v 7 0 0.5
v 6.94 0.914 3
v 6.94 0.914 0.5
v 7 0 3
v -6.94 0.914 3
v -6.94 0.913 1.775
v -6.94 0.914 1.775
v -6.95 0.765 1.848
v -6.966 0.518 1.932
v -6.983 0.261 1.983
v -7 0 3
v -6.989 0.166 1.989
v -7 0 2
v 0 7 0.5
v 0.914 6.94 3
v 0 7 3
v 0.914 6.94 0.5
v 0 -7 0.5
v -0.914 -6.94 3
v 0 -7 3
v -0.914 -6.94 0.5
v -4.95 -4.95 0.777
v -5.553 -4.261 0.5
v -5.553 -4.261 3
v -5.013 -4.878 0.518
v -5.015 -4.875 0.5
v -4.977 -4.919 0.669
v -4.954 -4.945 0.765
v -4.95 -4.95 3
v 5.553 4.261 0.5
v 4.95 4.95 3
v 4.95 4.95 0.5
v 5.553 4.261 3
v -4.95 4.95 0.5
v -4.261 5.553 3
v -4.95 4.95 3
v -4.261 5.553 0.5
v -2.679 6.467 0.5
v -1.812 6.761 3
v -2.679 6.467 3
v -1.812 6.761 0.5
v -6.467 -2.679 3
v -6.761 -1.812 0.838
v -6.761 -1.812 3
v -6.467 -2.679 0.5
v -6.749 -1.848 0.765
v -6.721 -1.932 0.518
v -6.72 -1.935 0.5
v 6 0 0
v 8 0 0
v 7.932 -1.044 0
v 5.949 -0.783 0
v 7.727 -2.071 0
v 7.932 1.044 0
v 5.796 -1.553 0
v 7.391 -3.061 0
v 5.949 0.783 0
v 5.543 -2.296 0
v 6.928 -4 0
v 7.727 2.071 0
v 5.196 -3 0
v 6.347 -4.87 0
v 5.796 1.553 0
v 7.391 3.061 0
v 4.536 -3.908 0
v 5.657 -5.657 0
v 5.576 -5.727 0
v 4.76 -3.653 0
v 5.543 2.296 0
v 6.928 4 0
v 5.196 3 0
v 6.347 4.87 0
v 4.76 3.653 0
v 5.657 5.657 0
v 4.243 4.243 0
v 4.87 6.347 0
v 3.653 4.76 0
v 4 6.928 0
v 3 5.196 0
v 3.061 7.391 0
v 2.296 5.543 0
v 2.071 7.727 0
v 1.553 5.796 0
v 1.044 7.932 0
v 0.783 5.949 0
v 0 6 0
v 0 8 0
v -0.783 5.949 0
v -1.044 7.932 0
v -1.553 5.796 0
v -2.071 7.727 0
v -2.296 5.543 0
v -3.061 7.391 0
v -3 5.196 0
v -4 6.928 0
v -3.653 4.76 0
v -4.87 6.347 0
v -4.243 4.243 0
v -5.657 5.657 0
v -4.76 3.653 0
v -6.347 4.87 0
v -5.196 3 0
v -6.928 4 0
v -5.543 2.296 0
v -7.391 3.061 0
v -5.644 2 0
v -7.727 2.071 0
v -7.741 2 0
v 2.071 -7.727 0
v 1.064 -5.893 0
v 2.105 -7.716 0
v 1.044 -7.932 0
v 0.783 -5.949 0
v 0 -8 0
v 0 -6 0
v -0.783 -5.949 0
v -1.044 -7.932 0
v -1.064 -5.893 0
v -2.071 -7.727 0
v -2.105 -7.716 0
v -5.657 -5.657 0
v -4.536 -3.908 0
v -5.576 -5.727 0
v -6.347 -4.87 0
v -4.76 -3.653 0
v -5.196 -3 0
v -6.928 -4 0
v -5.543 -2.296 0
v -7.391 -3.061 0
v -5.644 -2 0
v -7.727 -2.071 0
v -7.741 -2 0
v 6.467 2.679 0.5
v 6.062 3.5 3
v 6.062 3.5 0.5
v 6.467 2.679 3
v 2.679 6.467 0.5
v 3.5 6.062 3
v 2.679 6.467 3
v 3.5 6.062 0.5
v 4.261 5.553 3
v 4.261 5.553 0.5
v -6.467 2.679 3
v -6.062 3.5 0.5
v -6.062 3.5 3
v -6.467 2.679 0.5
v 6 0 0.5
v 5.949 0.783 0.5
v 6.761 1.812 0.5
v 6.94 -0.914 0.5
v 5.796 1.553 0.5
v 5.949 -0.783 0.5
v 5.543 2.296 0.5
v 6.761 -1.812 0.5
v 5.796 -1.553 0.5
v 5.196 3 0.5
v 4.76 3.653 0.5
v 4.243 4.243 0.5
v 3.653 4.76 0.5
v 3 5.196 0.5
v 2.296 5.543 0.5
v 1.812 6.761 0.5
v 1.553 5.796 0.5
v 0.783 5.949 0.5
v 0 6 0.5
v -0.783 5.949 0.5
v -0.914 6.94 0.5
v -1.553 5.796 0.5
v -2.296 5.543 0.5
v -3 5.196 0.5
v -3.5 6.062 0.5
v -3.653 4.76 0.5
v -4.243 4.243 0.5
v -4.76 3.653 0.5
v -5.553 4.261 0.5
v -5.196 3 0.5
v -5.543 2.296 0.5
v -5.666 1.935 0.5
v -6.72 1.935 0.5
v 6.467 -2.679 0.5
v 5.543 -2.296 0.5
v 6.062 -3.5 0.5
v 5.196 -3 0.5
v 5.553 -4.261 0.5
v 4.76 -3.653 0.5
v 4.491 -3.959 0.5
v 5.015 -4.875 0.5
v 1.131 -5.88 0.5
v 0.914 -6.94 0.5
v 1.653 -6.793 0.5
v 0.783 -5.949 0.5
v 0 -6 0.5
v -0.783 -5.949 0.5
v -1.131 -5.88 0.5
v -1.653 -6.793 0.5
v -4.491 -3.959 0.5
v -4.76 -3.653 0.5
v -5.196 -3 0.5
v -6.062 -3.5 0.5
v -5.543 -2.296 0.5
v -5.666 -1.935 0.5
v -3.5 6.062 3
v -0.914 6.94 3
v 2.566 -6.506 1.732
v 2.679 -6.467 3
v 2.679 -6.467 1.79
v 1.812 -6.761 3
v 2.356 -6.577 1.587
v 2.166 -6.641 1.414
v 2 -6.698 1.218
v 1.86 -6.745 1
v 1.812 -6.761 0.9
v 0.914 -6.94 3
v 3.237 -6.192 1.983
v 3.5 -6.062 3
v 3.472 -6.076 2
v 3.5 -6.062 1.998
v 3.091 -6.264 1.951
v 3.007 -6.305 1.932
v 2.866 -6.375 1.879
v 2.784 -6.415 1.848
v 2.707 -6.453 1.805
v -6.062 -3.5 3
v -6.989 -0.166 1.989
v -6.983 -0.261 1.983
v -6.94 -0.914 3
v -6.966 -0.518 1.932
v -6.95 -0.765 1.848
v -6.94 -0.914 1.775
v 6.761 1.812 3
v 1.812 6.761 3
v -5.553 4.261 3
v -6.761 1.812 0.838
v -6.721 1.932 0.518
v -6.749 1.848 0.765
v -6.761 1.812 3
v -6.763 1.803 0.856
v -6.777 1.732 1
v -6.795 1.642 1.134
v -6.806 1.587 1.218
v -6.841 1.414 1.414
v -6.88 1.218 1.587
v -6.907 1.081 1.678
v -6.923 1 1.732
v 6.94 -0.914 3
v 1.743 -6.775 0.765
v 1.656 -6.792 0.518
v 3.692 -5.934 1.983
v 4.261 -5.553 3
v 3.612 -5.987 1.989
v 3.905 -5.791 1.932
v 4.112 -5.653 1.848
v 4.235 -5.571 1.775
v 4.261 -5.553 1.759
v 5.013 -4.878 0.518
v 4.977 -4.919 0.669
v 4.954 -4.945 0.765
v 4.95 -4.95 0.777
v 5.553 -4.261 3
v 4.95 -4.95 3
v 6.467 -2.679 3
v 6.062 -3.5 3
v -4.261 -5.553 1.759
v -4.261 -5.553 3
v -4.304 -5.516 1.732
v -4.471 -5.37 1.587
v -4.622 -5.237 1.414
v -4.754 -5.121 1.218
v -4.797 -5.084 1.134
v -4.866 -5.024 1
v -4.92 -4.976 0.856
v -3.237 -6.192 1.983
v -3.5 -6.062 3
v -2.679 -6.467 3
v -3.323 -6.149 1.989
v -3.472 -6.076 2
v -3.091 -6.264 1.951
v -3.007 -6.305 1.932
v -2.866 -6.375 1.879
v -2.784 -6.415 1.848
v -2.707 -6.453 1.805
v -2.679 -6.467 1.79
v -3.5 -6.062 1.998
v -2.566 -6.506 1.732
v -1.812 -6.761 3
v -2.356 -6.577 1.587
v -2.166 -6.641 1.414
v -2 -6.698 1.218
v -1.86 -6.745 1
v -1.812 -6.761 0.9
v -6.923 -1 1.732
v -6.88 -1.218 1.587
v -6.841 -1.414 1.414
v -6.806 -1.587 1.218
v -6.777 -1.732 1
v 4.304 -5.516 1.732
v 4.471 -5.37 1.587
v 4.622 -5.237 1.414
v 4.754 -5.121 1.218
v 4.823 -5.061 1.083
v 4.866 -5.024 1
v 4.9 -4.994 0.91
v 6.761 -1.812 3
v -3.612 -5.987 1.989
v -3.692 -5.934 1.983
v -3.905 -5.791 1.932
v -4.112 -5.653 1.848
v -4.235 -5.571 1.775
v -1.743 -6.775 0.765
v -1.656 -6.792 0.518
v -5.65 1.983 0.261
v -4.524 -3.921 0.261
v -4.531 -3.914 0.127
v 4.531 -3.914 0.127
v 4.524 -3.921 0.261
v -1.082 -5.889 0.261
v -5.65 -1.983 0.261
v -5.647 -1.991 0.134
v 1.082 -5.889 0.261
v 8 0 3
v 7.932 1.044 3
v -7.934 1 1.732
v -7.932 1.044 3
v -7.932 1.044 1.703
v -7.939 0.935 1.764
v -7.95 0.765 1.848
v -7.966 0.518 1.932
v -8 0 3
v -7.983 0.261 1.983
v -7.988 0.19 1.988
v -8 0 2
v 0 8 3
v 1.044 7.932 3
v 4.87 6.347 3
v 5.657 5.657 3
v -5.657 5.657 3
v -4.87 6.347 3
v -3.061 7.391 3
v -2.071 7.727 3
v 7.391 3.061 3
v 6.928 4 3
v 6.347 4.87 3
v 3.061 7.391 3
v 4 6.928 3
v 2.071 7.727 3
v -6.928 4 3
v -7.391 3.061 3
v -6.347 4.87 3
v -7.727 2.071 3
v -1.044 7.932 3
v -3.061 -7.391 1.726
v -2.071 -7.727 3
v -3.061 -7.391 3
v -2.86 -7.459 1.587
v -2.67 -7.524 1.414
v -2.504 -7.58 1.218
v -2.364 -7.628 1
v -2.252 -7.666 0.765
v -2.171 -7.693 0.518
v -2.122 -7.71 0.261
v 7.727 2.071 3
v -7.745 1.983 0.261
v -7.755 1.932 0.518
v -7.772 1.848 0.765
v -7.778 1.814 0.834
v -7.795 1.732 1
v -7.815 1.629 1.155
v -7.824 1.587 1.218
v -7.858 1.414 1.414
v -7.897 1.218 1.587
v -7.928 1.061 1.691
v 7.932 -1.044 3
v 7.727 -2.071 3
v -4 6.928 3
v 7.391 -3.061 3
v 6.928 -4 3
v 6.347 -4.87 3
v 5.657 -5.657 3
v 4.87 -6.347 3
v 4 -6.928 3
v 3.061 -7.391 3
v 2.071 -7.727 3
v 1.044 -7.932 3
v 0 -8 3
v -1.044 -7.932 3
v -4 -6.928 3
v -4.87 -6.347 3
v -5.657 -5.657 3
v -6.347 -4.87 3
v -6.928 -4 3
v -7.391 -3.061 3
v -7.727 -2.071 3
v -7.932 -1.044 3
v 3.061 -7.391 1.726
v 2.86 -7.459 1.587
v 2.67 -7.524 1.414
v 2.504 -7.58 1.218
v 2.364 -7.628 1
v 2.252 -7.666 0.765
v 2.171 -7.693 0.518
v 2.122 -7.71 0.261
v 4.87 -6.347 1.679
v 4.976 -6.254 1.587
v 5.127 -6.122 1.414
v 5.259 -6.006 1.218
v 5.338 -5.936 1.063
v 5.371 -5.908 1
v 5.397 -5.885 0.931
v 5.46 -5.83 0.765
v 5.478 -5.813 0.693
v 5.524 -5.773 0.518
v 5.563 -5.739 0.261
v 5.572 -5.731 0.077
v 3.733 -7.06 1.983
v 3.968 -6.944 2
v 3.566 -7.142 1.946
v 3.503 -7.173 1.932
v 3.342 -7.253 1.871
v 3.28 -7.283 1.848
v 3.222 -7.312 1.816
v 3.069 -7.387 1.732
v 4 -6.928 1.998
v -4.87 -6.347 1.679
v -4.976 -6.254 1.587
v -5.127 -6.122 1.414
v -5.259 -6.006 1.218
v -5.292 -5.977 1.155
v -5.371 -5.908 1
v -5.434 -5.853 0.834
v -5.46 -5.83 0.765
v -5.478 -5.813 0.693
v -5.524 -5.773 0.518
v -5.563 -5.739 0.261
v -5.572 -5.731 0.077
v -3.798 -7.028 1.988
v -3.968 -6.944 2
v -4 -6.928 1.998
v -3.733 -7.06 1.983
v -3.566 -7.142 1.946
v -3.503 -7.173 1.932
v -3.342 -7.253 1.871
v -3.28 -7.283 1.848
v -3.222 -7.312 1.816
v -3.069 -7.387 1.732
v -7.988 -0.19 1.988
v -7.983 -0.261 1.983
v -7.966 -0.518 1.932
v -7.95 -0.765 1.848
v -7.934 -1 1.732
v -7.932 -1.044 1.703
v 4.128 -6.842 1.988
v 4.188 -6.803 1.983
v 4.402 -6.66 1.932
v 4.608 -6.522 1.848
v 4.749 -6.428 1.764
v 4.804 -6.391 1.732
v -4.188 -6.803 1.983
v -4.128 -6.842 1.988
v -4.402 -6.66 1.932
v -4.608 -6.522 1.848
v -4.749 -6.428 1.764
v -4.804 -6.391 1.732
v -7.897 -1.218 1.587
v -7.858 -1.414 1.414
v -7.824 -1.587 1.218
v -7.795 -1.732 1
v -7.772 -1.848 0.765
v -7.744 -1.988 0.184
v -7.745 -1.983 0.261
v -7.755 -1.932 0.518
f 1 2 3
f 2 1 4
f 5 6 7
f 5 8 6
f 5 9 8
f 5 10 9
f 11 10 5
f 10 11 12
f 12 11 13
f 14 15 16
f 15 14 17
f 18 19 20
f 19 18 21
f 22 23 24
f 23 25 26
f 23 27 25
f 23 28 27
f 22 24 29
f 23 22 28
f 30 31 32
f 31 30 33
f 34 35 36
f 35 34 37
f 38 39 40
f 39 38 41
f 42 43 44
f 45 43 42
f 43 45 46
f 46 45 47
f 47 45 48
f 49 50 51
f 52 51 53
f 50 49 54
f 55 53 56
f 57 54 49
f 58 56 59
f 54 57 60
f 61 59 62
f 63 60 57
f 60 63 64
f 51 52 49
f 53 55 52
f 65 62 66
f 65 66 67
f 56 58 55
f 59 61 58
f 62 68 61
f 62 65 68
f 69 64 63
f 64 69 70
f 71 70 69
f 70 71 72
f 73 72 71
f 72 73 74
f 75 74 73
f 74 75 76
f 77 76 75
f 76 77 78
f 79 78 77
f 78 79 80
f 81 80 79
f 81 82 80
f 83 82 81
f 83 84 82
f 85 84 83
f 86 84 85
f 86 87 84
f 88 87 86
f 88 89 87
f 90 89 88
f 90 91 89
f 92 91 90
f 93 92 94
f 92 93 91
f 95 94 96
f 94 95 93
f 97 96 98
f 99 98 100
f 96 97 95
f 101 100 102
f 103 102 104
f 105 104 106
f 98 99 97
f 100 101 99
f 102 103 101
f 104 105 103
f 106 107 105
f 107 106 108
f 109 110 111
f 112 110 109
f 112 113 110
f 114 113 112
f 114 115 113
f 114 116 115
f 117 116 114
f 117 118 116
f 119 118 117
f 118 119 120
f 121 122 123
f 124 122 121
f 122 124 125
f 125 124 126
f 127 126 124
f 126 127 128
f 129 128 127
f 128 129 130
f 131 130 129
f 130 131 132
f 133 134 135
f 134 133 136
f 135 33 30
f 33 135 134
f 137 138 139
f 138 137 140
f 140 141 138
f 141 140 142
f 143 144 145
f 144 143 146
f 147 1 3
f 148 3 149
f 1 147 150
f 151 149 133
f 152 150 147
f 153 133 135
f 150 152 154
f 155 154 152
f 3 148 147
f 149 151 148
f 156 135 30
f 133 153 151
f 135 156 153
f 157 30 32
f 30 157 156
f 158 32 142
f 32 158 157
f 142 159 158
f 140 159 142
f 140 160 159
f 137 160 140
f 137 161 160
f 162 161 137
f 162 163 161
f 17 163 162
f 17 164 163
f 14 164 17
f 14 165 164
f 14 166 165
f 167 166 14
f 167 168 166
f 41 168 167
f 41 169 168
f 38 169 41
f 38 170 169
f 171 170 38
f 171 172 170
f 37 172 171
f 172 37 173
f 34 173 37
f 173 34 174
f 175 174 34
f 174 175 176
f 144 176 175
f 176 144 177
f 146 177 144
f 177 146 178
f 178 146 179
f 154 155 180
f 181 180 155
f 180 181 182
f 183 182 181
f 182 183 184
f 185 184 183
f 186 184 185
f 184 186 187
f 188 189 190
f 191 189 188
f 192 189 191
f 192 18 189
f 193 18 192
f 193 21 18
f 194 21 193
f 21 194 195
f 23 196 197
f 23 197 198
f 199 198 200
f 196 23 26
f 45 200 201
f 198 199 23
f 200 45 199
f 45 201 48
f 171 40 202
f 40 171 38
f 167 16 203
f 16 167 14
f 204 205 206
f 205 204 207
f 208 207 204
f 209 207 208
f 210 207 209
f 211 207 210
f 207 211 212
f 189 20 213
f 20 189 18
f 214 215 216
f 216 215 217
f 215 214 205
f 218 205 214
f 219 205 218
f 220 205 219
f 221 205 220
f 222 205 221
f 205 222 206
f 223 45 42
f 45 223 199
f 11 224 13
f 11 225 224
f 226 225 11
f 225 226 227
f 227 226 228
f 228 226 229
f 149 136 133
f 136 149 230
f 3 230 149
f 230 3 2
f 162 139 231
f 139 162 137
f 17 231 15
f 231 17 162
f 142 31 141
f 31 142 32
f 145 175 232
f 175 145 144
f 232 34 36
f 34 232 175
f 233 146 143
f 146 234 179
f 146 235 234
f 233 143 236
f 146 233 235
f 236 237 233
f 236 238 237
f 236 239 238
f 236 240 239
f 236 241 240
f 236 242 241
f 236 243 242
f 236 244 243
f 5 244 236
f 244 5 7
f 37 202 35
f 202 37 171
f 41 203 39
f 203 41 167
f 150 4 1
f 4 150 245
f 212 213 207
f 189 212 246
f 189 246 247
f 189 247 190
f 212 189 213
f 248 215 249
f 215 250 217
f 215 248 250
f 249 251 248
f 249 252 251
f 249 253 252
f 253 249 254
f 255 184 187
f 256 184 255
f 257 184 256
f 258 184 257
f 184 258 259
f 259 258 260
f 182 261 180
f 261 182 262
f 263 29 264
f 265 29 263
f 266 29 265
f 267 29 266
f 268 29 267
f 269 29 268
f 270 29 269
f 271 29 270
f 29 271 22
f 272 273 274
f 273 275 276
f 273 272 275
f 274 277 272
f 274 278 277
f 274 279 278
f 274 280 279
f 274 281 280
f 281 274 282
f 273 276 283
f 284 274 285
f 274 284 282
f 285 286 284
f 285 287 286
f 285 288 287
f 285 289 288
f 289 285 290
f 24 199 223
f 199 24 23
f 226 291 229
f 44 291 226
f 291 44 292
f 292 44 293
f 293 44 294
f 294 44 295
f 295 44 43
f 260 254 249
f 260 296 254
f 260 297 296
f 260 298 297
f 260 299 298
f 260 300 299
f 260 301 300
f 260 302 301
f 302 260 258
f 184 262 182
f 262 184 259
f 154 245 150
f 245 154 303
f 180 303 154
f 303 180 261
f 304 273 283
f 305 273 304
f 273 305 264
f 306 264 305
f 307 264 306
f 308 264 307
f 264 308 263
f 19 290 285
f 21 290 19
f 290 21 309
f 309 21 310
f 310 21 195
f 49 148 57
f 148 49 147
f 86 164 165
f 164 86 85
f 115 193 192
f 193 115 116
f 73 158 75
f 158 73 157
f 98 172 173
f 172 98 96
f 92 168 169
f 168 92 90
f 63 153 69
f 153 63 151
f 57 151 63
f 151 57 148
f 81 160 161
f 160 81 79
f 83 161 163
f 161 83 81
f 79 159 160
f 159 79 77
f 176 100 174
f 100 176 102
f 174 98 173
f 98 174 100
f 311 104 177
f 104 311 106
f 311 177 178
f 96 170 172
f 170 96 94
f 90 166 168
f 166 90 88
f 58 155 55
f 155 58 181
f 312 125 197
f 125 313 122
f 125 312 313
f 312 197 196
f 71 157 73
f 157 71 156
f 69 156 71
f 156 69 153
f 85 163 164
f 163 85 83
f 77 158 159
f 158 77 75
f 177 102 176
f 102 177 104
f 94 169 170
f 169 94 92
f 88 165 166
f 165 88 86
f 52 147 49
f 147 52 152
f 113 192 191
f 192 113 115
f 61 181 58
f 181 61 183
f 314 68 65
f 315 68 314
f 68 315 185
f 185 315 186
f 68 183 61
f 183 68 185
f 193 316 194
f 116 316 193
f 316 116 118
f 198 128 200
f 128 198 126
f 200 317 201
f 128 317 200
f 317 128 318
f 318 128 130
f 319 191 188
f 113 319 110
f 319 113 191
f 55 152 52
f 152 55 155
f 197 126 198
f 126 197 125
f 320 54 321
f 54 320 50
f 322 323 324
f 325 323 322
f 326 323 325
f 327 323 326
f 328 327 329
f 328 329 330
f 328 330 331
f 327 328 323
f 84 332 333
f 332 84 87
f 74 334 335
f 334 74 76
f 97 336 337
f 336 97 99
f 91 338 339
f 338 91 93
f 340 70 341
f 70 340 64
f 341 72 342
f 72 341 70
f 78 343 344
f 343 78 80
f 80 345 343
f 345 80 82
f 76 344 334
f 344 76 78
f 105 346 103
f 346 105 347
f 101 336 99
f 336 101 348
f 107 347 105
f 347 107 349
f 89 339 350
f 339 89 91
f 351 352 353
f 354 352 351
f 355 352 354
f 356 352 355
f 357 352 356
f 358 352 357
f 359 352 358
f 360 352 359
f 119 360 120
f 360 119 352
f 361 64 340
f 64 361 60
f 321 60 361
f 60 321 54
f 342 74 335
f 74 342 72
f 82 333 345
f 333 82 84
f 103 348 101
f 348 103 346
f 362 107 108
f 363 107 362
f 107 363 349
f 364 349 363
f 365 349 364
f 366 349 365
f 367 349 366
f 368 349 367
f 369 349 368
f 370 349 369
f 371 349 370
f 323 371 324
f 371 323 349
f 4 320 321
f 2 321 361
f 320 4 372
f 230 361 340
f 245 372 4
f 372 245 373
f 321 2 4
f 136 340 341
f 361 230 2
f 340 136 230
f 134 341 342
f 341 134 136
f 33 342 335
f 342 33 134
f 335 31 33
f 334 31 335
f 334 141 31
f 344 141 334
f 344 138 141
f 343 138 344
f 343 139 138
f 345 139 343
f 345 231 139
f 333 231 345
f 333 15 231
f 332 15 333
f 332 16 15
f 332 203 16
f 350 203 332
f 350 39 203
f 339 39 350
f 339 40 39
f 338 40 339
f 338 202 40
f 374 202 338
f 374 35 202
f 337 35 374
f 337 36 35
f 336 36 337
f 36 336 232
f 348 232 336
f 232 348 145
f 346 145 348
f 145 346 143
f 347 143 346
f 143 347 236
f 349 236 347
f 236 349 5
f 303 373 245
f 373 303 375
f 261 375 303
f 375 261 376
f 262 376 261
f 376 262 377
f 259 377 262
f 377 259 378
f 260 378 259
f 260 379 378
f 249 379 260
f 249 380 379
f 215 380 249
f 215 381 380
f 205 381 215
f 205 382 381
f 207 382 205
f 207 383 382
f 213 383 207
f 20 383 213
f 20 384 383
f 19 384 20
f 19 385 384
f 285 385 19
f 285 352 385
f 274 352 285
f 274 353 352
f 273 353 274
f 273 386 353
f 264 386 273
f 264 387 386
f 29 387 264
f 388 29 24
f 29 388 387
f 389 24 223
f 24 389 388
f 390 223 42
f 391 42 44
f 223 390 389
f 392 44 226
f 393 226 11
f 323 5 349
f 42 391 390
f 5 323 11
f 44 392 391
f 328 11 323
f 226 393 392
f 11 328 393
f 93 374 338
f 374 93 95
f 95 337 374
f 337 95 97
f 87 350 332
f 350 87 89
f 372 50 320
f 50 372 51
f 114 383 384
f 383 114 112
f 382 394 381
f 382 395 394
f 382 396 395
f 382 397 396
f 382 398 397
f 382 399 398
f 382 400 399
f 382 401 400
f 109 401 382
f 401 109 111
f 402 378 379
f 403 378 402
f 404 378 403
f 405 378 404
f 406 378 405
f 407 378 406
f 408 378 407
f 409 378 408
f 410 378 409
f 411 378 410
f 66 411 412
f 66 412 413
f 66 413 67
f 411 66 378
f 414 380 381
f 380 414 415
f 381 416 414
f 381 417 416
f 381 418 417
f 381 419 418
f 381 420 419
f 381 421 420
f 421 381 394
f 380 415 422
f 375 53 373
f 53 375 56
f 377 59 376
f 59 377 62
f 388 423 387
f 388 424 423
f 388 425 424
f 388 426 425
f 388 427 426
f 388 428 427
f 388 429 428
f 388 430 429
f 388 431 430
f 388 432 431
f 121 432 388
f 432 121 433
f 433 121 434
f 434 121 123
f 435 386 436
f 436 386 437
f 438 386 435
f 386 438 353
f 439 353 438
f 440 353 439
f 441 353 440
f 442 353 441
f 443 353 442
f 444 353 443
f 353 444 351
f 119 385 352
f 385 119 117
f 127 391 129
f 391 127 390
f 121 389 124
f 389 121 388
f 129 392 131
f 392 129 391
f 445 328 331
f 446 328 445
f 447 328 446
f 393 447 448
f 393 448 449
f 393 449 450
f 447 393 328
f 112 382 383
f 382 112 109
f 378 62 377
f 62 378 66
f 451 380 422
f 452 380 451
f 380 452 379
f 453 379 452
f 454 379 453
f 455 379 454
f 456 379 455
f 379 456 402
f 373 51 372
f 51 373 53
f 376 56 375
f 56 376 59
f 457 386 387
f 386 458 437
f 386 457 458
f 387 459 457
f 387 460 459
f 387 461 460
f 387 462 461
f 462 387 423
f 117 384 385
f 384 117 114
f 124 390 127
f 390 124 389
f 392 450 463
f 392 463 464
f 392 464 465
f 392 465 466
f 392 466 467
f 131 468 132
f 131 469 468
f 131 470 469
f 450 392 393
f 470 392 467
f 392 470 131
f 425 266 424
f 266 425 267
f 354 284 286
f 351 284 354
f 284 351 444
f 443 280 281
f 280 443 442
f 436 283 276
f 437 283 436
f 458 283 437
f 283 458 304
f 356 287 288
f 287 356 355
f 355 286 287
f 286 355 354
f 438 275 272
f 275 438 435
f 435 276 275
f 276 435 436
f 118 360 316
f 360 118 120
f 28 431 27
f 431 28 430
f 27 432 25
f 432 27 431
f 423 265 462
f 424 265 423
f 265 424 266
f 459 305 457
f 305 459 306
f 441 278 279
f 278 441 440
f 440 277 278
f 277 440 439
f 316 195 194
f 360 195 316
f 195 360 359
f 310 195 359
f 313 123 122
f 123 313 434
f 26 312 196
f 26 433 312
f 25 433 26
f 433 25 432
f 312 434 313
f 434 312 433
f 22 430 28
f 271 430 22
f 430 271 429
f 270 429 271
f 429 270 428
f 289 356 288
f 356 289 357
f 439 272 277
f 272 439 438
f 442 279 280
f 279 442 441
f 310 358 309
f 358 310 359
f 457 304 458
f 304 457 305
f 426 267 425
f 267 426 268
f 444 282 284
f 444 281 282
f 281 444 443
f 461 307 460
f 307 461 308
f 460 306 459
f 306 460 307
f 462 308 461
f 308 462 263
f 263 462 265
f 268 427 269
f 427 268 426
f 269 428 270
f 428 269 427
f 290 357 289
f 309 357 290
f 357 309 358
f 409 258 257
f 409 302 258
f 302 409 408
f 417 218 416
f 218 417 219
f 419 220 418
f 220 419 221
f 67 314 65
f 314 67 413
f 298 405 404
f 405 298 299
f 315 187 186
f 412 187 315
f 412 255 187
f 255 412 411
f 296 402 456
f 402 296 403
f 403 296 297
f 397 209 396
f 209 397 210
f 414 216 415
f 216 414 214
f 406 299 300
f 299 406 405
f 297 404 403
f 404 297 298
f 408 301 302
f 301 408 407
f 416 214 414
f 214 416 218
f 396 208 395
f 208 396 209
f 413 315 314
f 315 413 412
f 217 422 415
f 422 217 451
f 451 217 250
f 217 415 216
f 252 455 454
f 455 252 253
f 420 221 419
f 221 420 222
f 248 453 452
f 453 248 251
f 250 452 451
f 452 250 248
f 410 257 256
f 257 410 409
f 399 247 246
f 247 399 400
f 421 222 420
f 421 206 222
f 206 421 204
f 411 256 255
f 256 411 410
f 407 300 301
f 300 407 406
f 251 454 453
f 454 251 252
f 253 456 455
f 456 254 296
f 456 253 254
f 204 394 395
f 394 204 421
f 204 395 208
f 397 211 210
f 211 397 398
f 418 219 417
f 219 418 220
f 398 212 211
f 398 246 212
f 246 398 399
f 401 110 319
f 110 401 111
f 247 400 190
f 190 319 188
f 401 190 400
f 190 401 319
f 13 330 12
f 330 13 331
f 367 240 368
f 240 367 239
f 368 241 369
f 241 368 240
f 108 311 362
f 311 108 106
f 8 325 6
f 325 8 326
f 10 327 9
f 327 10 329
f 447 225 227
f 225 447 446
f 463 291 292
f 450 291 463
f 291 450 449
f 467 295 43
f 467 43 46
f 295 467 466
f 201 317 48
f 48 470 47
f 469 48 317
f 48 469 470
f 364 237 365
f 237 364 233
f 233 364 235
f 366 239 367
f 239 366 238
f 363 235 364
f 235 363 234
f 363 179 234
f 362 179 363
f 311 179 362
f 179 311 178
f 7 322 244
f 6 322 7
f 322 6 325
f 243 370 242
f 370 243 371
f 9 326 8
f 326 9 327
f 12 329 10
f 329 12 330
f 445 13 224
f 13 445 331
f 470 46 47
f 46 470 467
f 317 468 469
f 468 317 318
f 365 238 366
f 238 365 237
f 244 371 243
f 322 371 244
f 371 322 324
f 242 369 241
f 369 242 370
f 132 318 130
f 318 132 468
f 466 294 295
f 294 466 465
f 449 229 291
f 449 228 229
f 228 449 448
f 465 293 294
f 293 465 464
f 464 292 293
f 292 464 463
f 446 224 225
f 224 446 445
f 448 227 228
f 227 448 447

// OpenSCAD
// file: ../build_environments.scad
// build_environments.scad: modules to build level sections
//

module pool(diameter=10.0, wall_height=2.0, step_width=3.0, connections=[])
{
    difference() {
        union() {
        difference() {
            cylinder(h=0.5,r1=diameter+step_width,r2=diameter+step_width,$fn=48);
            translate([0,0,-0.1])
                cylinder(h=0.7,r1=diameter,r2=diameter,$fn=48);
        }
        difference() {
            cylinder(h=wall_height,r1=diameter+step_width+1.0,r2=diameter+step_width+1.0,$fn=48);
            translate([0,0,-0.1])
                cylinder(h=wall_height+0.2,r1=diameter+step_width,r2=diameter+step_width,$fn=48);
        }
        }
    
        for (c = connections)
        {
            rotate([0,90,0]) {
                angle = atan2(c[1],c[0]);
                rotate([-angle,0,0]) {
                    cylinder(h=diameter+5.0,r1=c[2],r2=c[2],$fn=48);
                }
            }
        }
    }
}

module straight(length=10.0, width=2.0, dy1=0.0, dy2=0.0, dz=0.0)
{
    dims = [0, 0, 0, 0, 0, (dz/length)];
    matrix = [
        [ 1, dims[0], dims[1], 0 ],
        [ dims[2], 1, dims[4], 0 ],
        [ dims[5], dims[3], 1, 0 ],
        [ 0, 0, 0, 1 ]
    ];
    multmatrix(matrix)
    difference() {
        translate([dy1,0,0])
        union() {
            rotate([0,90,0]) {
                difference() {
                    cylinder(h=(length-dy1-dy2),r1=width+1.0,r2=width+1.0,$fn=24);
                    translate([0,0,-0.1])
                        cylinder(h=(length-dy1-dy2+0.2),r1=width,r2=width,$fn=24);
                }
                difference() {
                    cylinder(h=1.0,r1=width+2.0,r2=width+2.0,$fn=24);
                    translate([0,0,-0.1])
                        cylinder(h=1.2,r1=width,r2=width,$fn=24);
                }
                translate([0,0,(length-dy1-dy2)-1.0]) {
                    difference() {
                        cylinder(h=1.0,r1=width+2.0,r2=width+2.0,$fn=24);
                        translate([0,0,-0.1])
                            cylinder(h=1.2,r1=width,r2=width,$fn=24);
                    }
                }
            }
        }
        translate([0,0,-(2*width+4.0)/2])
            cube([3*length,3*length,2*width+4.0],center=true);
    }
}

module curve(p0=[0,0], center=[0,0], dir=1, angle=0.0, width=2.0)
{
    radius = sqrt((p0[0]-center[0])*(p0[0]-center[0]) + (p0[1]-center[1])*(p0[1]-center[1]));
    if (dir == 0) {
        difference() {
            rotate([0,0,-90])
            difference() {
                rotate_extrude(angle = angle, convexity = 10, $fn=32)
                    translate([radius, 0, 0])
                        circle(r = width+1.0,$fn=24);
                rotate([0,0,-1.0])
                    rotate_extrude(angle = angle+2.0, convexity = 10, $fn=32)
                        translate([radius, 0, 0])
                            circle(r = width,$fn=24);
            }
            translate([0,0,-(2*width+4.0)/2])
                cube([5*radius,5*radius,2*width+4.0],center=true);
        }
    }
    else {
        difference() {
            rotate([0,0,90])
            difference() {
                rotate_extrude(angle = -angle, convexity = 10, $fn=32)
                    translate([radius, 0, 0])
                        circle(r = width+1.0,$fn=24);
                rotate([0,0,1.0])
                    rotate_extrude(angle = -angle-2.0, convexity = 10, $fn=32)
                        translate([radius, 0, 0])
                            circle(r = width,$fn=24);
            }
            translate([0,0,-(2*width+4.0)/2])
                cube([5*radius,5*radius,2*width+4.0],center=true);
        }
    }

}

// test pool
//pool(diameter=12.0000, wall_height=3.0000, step_width=3.0000, connections=[[0.0000,-26.0000,2.0000], [23.6074,0.0000,2.0000]]);

// test straight, slope
//straight(length=26.0000, width=2.0000, dy1=11.8322, dy2=6.7082, dz=0.0000);
//straight(length=29.1549, width=12.0000, dy1=0.0000, dy2=0.0000, dz=-15.0000);

// test curve
//curve(p0=[23.6074, 0.0000], center=[23.6074, 5.0000], dir=0, angle=60.1011, width=2.0000);
//curve(p0=[33.6426, 12.4219], center=[37.9771, 9.9295], dir=1, angle=120.4627, width=2.0000);
// main file
use <../build_environments.scad>;
pool(diameter=6.0000, wall_height=3.0000, step_width=1.0000, connections=[[-8.0000,-14.0000,2.0000], [8.0000,-14.0000,2.0000], [-16.0000,0.0000,2.0000]]);
